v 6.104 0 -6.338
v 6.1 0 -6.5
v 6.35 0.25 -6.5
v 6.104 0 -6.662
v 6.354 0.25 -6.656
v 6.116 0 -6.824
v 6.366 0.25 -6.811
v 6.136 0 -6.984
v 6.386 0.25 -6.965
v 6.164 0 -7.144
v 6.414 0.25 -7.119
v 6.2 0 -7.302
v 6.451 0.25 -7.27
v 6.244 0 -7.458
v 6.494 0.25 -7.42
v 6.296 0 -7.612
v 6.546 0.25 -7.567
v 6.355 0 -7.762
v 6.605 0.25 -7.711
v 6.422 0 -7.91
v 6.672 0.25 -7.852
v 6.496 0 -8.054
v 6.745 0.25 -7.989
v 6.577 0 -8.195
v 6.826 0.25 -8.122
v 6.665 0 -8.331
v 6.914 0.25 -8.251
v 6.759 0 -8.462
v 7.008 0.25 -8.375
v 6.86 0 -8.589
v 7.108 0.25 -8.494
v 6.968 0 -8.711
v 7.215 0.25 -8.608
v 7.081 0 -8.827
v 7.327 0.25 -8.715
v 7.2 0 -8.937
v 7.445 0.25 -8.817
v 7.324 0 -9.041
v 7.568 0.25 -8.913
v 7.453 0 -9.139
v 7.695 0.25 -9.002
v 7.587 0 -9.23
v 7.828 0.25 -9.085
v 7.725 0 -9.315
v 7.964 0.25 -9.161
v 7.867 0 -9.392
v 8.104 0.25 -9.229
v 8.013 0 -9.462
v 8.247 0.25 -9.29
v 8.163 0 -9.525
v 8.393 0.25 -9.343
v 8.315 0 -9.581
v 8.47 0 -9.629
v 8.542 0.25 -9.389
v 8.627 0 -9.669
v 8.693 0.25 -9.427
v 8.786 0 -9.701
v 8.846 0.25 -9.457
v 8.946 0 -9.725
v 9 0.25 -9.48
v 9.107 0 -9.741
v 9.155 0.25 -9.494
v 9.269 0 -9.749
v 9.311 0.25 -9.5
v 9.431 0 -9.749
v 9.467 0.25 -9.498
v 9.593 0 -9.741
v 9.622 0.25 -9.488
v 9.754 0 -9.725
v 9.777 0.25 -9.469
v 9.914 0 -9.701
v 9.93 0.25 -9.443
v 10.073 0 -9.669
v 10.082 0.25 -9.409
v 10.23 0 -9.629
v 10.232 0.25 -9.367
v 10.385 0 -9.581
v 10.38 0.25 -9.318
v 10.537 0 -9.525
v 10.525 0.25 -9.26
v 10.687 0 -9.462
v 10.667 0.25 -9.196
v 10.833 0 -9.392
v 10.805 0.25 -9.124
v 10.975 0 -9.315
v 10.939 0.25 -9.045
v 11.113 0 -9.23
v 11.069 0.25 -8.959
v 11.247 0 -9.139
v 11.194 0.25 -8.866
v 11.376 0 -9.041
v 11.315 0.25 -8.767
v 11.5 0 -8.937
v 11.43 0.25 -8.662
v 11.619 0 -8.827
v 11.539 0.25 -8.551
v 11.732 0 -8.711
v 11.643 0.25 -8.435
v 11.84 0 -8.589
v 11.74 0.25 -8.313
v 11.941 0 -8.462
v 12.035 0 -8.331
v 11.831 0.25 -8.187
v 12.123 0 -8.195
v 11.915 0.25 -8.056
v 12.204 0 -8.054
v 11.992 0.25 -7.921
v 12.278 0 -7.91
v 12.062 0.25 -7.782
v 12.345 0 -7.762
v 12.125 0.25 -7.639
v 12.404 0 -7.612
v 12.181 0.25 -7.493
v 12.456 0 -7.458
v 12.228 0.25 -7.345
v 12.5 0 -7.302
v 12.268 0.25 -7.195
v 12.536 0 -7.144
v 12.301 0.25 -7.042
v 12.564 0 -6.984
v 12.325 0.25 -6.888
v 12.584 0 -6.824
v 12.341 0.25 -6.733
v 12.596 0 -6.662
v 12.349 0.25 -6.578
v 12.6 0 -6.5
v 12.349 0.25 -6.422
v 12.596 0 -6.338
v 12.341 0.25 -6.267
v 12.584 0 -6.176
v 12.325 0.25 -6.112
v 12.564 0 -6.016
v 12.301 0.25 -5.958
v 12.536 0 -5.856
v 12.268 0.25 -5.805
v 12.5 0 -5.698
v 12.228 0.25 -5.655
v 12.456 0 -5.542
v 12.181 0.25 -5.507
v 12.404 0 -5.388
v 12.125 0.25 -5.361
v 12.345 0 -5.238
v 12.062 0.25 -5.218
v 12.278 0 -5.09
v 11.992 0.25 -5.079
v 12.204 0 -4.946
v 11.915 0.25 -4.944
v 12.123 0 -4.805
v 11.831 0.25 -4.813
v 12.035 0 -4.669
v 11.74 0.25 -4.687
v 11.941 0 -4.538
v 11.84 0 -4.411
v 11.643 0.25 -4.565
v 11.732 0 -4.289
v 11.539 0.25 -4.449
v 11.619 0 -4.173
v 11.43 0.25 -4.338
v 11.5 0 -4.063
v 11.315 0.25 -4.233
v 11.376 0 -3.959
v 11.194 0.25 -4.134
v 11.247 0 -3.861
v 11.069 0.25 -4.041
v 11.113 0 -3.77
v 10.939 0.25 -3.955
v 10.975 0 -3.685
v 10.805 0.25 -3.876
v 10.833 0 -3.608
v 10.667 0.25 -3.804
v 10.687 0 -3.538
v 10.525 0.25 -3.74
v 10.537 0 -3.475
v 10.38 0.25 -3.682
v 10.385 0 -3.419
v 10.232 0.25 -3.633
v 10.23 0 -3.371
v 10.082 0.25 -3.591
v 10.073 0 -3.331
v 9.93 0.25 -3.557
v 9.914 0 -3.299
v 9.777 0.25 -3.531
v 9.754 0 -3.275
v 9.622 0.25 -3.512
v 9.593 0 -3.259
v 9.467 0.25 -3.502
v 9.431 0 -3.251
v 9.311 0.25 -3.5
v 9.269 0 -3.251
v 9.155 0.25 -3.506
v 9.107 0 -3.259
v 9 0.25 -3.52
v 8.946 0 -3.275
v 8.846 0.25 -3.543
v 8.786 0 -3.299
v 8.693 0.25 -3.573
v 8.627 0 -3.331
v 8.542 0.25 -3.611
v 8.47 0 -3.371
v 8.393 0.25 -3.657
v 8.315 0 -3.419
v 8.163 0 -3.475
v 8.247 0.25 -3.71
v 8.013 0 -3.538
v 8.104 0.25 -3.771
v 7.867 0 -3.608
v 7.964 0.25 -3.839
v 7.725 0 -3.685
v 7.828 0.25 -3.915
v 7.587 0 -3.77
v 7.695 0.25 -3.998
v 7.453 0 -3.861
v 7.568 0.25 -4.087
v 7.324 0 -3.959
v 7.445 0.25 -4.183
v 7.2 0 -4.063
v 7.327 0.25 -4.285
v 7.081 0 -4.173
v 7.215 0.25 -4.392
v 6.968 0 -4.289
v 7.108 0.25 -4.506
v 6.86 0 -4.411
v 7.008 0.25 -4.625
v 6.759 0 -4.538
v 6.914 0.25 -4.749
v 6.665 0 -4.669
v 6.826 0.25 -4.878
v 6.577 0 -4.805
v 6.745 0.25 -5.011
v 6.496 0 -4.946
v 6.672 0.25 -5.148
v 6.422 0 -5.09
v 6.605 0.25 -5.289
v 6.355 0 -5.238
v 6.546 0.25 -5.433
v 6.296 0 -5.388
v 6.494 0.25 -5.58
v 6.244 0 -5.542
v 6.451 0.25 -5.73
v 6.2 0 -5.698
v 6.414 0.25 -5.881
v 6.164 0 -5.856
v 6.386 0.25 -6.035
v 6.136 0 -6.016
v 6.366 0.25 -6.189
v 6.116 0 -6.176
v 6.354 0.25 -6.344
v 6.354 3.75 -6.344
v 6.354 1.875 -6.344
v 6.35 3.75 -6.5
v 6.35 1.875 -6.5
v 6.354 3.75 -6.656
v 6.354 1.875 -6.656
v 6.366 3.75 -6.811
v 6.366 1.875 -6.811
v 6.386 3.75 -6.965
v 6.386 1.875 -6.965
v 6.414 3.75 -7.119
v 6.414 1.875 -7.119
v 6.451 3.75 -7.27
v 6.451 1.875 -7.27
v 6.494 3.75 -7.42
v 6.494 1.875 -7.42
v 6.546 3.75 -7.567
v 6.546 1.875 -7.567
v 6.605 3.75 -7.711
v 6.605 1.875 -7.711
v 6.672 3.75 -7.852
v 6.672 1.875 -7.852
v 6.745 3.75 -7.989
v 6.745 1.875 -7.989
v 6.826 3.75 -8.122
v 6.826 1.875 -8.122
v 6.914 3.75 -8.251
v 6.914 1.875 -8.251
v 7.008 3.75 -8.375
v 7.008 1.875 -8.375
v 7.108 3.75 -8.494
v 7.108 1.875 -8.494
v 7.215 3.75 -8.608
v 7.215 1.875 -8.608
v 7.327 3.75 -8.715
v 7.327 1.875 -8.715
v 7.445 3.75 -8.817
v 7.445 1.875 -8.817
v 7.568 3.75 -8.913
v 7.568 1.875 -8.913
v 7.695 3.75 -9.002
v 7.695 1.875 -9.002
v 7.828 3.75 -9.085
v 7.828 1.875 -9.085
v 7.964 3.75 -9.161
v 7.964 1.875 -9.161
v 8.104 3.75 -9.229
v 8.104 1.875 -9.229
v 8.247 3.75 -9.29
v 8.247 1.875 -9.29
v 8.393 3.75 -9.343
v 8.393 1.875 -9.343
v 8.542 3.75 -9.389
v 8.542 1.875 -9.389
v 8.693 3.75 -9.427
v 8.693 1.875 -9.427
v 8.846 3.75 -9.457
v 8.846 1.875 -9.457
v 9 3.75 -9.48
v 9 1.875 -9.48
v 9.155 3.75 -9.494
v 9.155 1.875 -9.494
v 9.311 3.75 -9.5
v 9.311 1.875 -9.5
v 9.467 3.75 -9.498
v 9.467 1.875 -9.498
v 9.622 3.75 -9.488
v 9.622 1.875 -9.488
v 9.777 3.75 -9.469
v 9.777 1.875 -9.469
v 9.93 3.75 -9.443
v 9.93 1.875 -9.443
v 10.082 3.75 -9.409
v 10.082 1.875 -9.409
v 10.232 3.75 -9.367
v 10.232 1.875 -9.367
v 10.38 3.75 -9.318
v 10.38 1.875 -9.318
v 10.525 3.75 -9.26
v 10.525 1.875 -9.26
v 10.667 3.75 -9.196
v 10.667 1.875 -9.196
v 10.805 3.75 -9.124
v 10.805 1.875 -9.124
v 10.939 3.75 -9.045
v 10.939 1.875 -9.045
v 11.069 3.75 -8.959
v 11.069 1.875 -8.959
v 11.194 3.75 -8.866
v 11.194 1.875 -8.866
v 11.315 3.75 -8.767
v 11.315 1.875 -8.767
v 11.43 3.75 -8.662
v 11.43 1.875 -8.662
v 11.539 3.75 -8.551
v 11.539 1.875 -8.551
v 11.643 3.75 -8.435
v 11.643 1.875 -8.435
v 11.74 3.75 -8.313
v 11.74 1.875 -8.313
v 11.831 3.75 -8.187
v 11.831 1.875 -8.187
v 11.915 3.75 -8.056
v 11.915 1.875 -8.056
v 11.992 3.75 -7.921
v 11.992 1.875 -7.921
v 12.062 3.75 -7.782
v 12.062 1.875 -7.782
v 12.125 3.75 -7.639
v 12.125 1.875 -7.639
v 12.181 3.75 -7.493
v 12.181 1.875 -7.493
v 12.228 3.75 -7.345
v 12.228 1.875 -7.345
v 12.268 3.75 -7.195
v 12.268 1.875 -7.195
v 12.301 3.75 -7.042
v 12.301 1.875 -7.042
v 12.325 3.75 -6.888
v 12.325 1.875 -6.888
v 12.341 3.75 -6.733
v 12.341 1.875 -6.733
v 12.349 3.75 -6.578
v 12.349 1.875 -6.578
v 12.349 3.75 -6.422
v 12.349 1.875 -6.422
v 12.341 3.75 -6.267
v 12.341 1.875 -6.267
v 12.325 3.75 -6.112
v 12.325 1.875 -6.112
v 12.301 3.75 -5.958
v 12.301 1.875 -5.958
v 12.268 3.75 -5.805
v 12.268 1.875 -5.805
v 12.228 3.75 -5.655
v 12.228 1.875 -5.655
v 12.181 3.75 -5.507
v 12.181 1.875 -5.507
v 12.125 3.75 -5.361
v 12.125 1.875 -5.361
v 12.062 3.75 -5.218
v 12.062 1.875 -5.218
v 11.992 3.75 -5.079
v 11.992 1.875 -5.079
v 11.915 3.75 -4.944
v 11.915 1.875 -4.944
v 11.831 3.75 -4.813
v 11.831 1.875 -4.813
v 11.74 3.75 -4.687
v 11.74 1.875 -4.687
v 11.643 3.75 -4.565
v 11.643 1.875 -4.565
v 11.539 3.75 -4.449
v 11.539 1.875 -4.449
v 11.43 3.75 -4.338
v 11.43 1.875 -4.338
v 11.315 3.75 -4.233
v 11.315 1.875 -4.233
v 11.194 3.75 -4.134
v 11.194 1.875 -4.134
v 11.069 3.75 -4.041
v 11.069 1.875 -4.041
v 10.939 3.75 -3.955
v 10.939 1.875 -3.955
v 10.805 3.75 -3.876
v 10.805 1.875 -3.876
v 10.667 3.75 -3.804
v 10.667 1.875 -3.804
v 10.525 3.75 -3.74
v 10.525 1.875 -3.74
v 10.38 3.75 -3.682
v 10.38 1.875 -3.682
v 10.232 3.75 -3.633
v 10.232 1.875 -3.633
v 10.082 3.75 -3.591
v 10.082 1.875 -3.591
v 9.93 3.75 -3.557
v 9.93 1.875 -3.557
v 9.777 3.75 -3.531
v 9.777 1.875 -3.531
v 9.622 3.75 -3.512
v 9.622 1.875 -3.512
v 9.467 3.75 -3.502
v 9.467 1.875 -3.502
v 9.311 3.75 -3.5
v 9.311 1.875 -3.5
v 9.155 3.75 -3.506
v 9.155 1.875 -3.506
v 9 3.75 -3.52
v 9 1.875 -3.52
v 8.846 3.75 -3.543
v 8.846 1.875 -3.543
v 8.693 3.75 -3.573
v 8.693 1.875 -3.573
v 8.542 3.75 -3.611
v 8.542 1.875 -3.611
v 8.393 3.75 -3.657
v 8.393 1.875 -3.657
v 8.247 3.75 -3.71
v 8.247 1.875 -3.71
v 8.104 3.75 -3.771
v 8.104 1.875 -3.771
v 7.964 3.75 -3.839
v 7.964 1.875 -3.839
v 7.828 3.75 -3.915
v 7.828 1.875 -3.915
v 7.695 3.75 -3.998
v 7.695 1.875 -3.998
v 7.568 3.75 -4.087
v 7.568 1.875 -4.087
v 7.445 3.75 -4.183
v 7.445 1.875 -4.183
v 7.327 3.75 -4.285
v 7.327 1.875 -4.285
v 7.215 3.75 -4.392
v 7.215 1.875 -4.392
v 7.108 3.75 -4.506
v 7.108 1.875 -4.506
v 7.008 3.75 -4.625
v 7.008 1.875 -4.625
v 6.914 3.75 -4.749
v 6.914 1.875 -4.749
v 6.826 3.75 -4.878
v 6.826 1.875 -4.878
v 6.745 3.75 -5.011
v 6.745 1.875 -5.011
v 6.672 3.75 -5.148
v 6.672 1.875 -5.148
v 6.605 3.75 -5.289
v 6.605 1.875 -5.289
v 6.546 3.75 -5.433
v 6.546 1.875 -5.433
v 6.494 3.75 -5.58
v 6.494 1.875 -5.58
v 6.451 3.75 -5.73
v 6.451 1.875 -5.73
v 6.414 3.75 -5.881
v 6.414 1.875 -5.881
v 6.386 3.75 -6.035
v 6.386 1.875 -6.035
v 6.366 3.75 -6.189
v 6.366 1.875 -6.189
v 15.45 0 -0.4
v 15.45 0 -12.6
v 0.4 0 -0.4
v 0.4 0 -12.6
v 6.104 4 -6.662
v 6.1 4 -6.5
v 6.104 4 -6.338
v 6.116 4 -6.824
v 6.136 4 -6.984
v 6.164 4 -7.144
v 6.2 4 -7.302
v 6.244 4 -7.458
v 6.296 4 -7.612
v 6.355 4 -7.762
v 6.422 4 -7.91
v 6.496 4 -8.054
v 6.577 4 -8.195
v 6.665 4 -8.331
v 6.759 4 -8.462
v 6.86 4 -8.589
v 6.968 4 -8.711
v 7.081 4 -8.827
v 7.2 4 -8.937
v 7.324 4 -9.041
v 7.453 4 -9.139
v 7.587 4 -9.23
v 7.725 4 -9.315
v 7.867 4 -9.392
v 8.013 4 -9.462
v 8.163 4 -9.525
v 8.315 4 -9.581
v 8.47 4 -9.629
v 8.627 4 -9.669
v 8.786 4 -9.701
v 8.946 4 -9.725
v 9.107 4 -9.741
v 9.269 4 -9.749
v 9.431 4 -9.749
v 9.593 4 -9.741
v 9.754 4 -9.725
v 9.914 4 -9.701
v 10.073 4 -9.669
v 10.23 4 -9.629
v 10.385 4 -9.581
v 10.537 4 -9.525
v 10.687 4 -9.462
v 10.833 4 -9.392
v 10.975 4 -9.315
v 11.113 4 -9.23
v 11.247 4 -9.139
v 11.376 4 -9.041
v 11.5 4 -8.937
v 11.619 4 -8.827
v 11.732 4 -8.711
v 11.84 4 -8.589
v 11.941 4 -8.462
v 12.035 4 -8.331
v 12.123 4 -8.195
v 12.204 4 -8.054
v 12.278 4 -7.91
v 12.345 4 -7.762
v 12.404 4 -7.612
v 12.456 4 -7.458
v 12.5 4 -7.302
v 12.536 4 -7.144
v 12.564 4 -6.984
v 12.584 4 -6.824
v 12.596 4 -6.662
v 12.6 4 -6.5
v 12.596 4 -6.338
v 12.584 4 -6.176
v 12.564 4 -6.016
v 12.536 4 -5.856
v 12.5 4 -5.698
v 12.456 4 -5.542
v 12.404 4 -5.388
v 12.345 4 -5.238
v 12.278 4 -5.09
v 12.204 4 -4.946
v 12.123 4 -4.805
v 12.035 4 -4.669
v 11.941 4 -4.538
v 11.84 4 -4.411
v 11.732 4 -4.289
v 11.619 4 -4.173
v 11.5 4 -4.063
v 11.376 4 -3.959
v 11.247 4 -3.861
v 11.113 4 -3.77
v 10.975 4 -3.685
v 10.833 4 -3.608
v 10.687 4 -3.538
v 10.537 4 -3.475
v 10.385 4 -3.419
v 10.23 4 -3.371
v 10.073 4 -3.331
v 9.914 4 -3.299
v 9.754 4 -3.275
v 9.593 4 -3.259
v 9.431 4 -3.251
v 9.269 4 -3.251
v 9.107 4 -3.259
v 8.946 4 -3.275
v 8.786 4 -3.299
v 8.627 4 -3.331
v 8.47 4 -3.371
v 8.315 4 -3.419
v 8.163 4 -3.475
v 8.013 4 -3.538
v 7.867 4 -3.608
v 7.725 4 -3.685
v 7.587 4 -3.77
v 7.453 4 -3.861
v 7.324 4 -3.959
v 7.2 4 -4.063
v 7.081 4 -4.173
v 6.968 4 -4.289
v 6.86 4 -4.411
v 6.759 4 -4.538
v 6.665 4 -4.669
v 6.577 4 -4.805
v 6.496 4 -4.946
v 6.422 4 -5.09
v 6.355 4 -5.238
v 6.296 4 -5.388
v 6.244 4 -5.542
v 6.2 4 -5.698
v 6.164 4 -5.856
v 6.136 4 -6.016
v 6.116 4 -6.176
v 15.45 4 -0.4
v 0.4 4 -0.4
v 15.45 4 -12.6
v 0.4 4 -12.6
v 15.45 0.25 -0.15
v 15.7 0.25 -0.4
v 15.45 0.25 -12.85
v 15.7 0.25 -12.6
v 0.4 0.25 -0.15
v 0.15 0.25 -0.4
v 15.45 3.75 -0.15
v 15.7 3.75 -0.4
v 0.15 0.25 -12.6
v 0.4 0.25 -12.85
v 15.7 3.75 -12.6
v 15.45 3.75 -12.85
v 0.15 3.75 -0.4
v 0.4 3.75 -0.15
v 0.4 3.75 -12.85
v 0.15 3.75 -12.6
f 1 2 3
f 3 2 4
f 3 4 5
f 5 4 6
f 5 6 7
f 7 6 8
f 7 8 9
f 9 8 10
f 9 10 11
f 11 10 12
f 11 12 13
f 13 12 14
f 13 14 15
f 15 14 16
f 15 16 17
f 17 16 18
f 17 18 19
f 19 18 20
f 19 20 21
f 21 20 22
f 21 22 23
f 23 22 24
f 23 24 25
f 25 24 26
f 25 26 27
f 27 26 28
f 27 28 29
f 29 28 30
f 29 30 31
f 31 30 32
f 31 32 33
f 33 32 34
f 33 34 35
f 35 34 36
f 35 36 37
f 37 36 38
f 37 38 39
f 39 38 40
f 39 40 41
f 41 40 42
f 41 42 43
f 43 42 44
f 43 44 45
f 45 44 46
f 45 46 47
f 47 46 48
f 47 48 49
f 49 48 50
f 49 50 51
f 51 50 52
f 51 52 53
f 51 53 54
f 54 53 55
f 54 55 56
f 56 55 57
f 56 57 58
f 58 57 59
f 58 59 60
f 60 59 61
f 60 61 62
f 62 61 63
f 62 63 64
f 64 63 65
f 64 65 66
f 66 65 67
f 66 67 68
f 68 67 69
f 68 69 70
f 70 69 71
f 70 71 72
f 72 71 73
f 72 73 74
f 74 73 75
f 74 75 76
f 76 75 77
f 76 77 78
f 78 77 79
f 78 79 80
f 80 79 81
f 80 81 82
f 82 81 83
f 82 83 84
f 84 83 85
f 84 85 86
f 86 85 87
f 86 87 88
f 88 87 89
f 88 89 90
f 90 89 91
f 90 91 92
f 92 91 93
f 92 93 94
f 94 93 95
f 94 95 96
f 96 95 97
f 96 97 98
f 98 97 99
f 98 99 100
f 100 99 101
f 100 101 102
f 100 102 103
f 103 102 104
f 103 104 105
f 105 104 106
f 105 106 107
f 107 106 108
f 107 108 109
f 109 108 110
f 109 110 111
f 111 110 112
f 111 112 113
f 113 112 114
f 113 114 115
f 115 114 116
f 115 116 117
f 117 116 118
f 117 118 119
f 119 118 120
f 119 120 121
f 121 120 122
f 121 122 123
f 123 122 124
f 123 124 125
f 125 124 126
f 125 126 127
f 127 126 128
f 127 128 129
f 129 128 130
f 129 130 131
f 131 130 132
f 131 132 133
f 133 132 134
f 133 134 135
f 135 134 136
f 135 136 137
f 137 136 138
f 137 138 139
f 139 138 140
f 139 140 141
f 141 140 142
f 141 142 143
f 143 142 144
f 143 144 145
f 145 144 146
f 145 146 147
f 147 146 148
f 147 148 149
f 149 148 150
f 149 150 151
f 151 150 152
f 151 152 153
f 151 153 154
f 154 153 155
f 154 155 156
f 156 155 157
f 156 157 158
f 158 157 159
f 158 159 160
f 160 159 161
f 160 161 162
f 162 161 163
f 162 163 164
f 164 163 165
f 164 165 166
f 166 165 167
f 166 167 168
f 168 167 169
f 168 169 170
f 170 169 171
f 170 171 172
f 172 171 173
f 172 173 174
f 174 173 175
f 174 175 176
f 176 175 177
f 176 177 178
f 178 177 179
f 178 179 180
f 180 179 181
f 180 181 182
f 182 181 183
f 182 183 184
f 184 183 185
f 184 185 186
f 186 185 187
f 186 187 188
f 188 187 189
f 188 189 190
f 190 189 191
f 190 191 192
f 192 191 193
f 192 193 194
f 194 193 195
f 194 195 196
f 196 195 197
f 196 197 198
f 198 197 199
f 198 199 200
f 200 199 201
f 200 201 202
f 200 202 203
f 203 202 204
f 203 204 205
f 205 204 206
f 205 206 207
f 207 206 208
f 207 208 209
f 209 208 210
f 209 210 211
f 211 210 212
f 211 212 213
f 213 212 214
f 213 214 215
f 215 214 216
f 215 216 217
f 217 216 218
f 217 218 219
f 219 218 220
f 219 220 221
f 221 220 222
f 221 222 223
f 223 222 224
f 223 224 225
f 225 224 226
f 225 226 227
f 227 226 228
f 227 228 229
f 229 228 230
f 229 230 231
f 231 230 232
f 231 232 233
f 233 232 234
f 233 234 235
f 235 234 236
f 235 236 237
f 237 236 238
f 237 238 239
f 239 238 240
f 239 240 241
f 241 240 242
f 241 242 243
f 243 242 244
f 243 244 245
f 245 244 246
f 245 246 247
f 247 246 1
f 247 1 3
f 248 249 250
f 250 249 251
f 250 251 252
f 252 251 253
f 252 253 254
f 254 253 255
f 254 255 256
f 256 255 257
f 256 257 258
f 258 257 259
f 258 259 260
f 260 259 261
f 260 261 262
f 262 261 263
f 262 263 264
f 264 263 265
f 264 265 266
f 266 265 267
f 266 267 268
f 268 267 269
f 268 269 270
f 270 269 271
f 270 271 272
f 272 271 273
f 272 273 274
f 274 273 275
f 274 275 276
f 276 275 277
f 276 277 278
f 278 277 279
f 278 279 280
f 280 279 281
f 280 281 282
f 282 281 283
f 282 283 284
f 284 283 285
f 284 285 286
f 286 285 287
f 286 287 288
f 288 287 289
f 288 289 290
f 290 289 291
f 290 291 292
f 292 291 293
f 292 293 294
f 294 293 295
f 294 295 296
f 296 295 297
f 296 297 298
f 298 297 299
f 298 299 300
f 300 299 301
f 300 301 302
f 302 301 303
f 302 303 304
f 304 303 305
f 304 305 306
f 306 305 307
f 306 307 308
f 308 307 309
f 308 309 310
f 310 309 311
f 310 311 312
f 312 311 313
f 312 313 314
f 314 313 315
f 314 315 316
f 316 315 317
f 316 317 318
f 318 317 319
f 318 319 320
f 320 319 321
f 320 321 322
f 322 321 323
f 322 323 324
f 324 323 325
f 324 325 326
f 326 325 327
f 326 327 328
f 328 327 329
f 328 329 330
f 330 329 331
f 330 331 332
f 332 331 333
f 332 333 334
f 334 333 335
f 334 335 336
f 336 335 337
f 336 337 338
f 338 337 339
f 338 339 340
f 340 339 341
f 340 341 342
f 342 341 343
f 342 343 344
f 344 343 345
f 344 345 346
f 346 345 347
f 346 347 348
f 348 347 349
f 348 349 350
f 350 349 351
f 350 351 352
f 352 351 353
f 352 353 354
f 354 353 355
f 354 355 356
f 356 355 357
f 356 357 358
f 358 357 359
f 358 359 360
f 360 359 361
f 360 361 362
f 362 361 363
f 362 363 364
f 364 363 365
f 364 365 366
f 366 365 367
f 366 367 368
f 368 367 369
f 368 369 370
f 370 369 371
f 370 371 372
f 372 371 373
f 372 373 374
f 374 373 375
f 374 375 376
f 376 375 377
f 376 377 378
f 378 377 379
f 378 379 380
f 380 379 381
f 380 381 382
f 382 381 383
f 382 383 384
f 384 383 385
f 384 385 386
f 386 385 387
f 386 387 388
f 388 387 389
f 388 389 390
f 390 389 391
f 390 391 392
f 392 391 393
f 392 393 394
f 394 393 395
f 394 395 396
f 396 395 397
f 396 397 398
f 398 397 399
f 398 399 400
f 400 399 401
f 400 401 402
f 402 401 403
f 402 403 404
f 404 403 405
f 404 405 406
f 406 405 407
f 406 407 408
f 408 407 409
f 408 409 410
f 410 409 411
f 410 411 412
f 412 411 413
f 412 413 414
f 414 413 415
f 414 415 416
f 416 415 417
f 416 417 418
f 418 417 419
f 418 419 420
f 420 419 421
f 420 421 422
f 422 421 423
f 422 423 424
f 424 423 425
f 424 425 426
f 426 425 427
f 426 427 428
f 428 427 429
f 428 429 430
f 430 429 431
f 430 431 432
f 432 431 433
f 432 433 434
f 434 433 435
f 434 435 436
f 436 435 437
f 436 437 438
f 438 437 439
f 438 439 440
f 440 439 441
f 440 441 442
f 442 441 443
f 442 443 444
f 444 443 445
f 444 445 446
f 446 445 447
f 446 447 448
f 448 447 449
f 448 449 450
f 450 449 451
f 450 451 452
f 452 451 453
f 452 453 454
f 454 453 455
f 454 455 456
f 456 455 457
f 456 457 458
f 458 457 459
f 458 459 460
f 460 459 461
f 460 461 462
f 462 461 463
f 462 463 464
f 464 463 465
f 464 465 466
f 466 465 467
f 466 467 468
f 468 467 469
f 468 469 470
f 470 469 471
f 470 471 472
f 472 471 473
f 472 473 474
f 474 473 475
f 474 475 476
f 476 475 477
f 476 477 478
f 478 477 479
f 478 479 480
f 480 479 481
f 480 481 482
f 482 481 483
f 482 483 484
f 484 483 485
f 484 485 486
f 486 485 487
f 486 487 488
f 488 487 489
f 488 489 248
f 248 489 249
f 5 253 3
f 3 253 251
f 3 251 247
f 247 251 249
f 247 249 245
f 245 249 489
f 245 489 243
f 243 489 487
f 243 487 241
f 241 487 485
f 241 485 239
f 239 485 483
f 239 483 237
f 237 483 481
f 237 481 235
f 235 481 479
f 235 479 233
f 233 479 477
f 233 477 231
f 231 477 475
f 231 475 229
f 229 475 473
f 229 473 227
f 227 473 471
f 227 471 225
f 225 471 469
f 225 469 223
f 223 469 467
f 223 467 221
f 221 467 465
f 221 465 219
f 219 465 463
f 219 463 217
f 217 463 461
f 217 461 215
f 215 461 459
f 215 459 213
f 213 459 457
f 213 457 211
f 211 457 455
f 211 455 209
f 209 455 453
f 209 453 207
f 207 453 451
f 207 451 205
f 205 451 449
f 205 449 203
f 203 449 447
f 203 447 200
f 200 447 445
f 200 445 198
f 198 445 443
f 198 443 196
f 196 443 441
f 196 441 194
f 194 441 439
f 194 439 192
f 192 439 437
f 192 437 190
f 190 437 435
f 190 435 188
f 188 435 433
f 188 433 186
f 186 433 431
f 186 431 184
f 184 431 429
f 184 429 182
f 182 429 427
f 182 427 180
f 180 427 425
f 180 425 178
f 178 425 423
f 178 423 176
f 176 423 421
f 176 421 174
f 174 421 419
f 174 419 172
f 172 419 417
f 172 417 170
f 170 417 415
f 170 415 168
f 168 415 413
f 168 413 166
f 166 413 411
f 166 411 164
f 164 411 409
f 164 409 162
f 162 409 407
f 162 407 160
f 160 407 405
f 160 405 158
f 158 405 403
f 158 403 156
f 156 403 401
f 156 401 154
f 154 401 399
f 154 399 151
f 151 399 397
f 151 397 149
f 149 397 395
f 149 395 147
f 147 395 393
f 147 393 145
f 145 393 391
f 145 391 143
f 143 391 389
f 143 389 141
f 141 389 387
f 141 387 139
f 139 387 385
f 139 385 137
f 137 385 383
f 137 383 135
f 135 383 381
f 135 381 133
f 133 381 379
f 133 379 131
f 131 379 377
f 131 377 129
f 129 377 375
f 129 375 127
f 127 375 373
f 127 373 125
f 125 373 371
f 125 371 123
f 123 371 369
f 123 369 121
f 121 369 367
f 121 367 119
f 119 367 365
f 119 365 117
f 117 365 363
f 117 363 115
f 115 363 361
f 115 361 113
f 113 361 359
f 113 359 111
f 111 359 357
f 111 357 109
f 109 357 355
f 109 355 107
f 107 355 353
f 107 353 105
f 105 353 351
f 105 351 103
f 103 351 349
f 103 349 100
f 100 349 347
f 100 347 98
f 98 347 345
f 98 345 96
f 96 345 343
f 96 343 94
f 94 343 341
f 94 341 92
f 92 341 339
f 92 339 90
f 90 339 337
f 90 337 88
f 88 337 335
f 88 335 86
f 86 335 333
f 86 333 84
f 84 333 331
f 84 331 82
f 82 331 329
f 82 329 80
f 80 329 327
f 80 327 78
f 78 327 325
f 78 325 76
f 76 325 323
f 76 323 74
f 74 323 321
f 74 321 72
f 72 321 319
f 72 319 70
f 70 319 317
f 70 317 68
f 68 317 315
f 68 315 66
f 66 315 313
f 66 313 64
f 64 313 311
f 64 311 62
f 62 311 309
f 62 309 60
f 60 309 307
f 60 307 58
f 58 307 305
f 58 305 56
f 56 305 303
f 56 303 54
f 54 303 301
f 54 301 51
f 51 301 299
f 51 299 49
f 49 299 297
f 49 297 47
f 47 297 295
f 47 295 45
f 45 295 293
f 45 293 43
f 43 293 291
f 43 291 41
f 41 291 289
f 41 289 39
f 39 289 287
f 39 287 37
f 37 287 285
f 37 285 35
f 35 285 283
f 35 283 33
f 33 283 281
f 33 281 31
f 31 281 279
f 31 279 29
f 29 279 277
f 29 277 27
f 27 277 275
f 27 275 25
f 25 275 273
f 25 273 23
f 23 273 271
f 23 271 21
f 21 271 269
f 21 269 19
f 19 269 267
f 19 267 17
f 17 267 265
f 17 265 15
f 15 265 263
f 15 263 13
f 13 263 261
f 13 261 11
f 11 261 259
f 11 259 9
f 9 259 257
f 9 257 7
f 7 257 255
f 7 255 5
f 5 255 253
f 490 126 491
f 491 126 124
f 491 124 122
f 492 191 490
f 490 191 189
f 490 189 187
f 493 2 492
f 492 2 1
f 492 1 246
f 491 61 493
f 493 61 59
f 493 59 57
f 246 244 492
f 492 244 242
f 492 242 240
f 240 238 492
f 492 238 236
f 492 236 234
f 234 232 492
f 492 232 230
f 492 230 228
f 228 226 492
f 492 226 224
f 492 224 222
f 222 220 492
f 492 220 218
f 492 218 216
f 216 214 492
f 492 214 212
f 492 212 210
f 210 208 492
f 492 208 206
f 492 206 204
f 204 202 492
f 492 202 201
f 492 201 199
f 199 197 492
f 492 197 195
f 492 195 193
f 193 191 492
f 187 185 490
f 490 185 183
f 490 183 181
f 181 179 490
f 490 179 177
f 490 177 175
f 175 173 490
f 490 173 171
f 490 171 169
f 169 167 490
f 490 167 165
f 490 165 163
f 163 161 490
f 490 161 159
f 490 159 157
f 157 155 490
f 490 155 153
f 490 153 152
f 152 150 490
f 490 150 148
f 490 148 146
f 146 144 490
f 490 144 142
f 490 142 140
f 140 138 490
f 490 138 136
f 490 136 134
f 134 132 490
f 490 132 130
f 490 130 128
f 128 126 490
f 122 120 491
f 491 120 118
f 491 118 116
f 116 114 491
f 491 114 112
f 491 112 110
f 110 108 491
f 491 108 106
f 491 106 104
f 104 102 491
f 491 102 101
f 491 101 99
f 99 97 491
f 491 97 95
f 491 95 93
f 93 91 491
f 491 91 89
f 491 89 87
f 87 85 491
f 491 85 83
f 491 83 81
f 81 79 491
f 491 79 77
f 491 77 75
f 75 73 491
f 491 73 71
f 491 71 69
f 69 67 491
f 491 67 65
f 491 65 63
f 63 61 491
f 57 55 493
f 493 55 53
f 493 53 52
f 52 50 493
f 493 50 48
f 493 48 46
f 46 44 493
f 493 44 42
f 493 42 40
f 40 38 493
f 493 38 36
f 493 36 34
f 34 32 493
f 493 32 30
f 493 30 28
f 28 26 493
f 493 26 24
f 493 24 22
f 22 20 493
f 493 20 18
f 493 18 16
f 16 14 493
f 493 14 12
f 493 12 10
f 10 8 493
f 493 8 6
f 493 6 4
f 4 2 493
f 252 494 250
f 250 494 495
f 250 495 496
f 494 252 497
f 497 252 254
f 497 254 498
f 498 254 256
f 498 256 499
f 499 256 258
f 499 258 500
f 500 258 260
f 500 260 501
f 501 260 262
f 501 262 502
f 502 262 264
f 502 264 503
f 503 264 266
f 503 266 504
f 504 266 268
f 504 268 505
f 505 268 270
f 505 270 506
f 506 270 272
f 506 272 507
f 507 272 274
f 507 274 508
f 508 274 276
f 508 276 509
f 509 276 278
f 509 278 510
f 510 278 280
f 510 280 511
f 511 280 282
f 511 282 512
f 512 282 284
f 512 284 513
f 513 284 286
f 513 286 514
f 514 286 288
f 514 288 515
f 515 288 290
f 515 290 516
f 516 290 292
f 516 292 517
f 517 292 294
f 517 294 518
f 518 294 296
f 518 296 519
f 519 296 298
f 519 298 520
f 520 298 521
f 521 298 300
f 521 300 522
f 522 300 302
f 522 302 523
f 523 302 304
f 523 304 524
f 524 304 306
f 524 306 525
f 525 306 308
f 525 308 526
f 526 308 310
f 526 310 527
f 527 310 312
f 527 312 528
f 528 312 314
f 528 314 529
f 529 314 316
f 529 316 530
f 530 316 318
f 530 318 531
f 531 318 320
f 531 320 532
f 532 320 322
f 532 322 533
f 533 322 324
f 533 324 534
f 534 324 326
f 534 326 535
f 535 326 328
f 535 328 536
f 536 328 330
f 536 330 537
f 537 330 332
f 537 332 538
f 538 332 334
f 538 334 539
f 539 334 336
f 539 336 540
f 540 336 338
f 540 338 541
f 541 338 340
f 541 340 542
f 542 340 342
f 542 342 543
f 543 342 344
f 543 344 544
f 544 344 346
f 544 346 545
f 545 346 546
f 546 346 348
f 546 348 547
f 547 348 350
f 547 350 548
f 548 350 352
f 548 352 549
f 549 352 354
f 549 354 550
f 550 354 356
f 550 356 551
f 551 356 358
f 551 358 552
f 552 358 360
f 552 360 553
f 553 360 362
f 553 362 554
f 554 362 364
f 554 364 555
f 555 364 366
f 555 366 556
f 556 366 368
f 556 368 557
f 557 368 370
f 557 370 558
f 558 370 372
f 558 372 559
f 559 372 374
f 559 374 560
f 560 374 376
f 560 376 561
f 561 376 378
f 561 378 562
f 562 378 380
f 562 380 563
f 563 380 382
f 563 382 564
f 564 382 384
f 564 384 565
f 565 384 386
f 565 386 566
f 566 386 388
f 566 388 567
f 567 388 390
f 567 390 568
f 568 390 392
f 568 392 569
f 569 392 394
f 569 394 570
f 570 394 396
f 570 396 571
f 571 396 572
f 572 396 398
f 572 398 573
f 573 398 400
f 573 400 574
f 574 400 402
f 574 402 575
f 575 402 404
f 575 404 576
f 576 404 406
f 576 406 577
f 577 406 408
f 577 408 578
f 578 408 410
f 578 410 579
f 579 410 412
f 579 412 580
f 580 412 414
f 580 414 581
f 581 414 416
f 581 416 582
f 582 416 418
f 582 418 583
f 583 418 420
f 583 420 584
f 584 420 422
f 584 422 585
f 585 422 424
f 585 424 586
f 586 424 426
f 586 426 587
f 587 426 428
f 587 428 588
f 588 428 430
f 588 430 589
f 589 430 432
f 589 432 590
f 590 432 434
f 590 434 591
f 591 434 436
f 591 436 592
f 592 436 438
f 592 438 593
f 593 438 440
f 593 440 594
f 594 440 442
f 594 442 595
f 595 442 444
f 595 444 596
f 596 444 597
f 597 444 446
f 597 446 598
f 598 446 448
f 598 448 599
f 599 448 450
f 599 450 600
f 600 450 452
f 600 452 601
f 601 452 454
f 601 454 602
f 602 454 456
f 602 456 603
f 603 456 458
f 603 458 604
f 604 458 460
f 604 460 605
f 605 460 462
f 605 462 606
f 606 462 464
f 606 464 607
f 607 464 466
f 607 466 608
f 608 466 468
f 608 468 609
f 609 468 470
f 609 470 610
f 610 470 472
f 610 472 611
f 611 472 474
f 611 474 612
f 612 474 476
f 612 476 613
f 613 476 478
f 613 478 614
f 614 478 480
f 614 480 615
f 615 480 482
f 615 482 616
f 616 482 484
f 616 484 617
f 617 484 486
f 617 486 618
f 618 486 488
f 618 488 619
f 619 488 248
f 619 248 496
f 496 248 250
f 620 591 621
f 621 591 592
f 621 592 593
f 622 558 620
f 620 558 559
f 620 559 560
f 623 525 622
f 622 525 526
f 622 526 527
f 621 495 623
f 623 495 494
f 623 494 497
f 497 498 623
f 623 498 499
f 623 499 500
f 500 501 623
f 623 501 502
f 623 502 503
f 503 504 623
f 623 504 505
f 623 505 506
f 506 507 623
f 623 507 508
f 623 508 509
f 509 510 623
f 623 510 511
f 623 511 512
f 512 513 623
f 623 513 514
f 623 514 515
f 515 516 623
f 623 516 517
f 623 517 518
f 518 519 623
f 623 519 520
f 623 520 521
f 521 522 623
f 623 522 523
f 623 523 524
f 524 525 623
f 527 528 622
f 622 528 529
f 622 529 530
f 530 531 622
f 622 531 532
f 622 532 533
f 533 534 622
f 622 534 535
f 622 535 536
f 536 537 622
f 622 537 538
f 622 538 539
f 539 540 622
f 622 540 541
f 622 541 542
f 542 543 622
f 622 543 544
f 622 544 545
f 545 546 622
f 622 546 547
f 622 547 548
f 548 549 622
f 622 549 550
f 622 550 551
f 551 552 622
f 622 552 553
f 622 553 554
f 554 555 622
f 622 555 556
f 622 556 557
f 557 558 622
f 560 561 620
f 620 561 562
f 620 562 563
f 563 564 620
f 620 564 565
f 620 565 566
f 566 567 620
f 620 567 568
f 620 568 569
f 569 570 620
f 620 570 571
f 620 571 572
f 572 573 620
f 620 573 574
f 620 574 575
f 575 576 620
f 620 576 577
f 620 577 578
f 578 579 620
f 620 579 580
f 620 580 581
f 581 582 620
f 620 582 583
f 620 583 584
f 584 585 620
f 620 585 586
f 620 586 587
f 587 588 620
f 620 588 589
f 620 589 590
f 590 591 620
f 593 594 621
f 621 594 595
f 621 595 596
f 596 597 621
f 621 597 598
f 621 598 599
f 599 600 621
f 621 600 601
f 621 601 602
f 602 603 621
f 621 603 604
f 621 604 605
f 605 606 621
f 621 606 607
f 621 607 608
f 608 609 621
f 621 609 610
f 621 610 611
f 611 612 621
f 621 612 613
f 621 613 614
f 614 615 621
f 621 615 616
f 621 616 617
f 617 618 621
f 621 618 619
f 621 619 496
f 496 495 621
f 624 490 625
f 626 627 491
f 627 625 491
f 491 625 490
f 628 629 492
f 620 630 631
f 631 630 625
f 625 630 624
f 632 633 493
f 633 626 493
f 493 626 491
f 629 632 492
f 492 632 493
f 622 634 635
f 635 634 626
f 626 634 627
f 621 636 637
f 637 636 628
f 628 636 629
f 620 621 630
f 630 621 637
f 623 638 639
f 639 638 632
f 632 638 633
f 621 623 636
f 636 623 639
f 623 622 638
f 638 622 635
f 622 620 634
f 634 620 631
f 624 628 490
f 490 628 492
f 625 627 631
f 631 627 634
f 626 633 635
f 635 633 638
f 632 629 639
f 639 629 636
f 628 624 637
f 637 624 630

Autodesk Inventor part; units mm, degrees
ref_plane "YZ Plane" through (0, 0, 0) normal (1, 0, 0) x (0, 1, 0)
ref_plane "XZ Plane" through (0, 0, 0) normal (0, 1, 0) x (-1, 0, 0)
ref_plane "XY Plane" through (0, 0, 0) normal (0, 0, 1) x (1, 0, 0)
sketch "Sketch1" plane through (0, 0, 0) normal (0, 1, 0) x (-1, 0, 0)
  line L0 (0, 0) -> (-15.85, 0) construction
  line L1 (-15.85, 0) -> (-15.85, -13) construction
  line L2 (-15.85, -13) -> (0, -13) construction
  line L3 (0, -13) -> (0, 0) construction
  line L4 (0, 0) -> (-9.35, 0) construction
  line L5 (-9.35, 0) -> (-9.35, -6.5) construction
  line L6 (-9.35, -6.5) -> (0, -6.5) construction
  line L7 (0, -6.5) -> (0, 0) construction
  circle A0 centre (-9.35, -6.5) radius 3
  line L8 (0, 0) -> (-0.15, 0) construction
  line L9 (-0.15, 0) -> (-0.15, -0.15) construction
  line L10 (-0.15, -0.15) -> (0, -0.15) construction
  line L11 (0, -0.15) -> (0, 0) construction
  line L12 (-15.85, -13) -> (-15.7, -13) construction
  line L13 (-15.7, -13) -> (-15.7, -12.85) construction
  line L14 (-15.7, -12.85) -> (-15.85, -12.85) construction
  line L15 (-15.85, -12.85) -> (-15.85, -13) construction
  line L16 (-0.15, -0.15) -> (-15.7, -0.15)
  line L17 (-15.7, -0.15) -> (-15.7, -12.85)
  line L18 (-15.7, -12.85) -> (-0.15, -12.85)
  line L19 (-0.15, -12.85) -> (-0.15, -0.15)
  dimension "d0" = 15.85
  dimension "d1" = 13
  dimension "d2" = 9.35
  dimension "d3" = 6.5
  dimension "d4" = 6
extrude "Extrusion1" add sketch "Sketch1" along normal blind 4
chamfer "Chamfer1" distance 0.25 angle 45 14 edges at (0.15, 4, -6.5) (7.925, 4, -12.85) (15.7, 4, -6.5) (7.925, 4, -0.15) (0.15, 2, -0.15) (15.7, 2, -0.15) (15.7, 2, -12.85) (0.15, 2, -12.85) (0.15, 0, -6.5) (7.925, 0, -12.85) (12.35, 4, -6.5) (12.35, 0, -6.5) (15.7, 0, -6.5) (7.925, 0, -0.15)
properties part number "Calza para ventilador"
